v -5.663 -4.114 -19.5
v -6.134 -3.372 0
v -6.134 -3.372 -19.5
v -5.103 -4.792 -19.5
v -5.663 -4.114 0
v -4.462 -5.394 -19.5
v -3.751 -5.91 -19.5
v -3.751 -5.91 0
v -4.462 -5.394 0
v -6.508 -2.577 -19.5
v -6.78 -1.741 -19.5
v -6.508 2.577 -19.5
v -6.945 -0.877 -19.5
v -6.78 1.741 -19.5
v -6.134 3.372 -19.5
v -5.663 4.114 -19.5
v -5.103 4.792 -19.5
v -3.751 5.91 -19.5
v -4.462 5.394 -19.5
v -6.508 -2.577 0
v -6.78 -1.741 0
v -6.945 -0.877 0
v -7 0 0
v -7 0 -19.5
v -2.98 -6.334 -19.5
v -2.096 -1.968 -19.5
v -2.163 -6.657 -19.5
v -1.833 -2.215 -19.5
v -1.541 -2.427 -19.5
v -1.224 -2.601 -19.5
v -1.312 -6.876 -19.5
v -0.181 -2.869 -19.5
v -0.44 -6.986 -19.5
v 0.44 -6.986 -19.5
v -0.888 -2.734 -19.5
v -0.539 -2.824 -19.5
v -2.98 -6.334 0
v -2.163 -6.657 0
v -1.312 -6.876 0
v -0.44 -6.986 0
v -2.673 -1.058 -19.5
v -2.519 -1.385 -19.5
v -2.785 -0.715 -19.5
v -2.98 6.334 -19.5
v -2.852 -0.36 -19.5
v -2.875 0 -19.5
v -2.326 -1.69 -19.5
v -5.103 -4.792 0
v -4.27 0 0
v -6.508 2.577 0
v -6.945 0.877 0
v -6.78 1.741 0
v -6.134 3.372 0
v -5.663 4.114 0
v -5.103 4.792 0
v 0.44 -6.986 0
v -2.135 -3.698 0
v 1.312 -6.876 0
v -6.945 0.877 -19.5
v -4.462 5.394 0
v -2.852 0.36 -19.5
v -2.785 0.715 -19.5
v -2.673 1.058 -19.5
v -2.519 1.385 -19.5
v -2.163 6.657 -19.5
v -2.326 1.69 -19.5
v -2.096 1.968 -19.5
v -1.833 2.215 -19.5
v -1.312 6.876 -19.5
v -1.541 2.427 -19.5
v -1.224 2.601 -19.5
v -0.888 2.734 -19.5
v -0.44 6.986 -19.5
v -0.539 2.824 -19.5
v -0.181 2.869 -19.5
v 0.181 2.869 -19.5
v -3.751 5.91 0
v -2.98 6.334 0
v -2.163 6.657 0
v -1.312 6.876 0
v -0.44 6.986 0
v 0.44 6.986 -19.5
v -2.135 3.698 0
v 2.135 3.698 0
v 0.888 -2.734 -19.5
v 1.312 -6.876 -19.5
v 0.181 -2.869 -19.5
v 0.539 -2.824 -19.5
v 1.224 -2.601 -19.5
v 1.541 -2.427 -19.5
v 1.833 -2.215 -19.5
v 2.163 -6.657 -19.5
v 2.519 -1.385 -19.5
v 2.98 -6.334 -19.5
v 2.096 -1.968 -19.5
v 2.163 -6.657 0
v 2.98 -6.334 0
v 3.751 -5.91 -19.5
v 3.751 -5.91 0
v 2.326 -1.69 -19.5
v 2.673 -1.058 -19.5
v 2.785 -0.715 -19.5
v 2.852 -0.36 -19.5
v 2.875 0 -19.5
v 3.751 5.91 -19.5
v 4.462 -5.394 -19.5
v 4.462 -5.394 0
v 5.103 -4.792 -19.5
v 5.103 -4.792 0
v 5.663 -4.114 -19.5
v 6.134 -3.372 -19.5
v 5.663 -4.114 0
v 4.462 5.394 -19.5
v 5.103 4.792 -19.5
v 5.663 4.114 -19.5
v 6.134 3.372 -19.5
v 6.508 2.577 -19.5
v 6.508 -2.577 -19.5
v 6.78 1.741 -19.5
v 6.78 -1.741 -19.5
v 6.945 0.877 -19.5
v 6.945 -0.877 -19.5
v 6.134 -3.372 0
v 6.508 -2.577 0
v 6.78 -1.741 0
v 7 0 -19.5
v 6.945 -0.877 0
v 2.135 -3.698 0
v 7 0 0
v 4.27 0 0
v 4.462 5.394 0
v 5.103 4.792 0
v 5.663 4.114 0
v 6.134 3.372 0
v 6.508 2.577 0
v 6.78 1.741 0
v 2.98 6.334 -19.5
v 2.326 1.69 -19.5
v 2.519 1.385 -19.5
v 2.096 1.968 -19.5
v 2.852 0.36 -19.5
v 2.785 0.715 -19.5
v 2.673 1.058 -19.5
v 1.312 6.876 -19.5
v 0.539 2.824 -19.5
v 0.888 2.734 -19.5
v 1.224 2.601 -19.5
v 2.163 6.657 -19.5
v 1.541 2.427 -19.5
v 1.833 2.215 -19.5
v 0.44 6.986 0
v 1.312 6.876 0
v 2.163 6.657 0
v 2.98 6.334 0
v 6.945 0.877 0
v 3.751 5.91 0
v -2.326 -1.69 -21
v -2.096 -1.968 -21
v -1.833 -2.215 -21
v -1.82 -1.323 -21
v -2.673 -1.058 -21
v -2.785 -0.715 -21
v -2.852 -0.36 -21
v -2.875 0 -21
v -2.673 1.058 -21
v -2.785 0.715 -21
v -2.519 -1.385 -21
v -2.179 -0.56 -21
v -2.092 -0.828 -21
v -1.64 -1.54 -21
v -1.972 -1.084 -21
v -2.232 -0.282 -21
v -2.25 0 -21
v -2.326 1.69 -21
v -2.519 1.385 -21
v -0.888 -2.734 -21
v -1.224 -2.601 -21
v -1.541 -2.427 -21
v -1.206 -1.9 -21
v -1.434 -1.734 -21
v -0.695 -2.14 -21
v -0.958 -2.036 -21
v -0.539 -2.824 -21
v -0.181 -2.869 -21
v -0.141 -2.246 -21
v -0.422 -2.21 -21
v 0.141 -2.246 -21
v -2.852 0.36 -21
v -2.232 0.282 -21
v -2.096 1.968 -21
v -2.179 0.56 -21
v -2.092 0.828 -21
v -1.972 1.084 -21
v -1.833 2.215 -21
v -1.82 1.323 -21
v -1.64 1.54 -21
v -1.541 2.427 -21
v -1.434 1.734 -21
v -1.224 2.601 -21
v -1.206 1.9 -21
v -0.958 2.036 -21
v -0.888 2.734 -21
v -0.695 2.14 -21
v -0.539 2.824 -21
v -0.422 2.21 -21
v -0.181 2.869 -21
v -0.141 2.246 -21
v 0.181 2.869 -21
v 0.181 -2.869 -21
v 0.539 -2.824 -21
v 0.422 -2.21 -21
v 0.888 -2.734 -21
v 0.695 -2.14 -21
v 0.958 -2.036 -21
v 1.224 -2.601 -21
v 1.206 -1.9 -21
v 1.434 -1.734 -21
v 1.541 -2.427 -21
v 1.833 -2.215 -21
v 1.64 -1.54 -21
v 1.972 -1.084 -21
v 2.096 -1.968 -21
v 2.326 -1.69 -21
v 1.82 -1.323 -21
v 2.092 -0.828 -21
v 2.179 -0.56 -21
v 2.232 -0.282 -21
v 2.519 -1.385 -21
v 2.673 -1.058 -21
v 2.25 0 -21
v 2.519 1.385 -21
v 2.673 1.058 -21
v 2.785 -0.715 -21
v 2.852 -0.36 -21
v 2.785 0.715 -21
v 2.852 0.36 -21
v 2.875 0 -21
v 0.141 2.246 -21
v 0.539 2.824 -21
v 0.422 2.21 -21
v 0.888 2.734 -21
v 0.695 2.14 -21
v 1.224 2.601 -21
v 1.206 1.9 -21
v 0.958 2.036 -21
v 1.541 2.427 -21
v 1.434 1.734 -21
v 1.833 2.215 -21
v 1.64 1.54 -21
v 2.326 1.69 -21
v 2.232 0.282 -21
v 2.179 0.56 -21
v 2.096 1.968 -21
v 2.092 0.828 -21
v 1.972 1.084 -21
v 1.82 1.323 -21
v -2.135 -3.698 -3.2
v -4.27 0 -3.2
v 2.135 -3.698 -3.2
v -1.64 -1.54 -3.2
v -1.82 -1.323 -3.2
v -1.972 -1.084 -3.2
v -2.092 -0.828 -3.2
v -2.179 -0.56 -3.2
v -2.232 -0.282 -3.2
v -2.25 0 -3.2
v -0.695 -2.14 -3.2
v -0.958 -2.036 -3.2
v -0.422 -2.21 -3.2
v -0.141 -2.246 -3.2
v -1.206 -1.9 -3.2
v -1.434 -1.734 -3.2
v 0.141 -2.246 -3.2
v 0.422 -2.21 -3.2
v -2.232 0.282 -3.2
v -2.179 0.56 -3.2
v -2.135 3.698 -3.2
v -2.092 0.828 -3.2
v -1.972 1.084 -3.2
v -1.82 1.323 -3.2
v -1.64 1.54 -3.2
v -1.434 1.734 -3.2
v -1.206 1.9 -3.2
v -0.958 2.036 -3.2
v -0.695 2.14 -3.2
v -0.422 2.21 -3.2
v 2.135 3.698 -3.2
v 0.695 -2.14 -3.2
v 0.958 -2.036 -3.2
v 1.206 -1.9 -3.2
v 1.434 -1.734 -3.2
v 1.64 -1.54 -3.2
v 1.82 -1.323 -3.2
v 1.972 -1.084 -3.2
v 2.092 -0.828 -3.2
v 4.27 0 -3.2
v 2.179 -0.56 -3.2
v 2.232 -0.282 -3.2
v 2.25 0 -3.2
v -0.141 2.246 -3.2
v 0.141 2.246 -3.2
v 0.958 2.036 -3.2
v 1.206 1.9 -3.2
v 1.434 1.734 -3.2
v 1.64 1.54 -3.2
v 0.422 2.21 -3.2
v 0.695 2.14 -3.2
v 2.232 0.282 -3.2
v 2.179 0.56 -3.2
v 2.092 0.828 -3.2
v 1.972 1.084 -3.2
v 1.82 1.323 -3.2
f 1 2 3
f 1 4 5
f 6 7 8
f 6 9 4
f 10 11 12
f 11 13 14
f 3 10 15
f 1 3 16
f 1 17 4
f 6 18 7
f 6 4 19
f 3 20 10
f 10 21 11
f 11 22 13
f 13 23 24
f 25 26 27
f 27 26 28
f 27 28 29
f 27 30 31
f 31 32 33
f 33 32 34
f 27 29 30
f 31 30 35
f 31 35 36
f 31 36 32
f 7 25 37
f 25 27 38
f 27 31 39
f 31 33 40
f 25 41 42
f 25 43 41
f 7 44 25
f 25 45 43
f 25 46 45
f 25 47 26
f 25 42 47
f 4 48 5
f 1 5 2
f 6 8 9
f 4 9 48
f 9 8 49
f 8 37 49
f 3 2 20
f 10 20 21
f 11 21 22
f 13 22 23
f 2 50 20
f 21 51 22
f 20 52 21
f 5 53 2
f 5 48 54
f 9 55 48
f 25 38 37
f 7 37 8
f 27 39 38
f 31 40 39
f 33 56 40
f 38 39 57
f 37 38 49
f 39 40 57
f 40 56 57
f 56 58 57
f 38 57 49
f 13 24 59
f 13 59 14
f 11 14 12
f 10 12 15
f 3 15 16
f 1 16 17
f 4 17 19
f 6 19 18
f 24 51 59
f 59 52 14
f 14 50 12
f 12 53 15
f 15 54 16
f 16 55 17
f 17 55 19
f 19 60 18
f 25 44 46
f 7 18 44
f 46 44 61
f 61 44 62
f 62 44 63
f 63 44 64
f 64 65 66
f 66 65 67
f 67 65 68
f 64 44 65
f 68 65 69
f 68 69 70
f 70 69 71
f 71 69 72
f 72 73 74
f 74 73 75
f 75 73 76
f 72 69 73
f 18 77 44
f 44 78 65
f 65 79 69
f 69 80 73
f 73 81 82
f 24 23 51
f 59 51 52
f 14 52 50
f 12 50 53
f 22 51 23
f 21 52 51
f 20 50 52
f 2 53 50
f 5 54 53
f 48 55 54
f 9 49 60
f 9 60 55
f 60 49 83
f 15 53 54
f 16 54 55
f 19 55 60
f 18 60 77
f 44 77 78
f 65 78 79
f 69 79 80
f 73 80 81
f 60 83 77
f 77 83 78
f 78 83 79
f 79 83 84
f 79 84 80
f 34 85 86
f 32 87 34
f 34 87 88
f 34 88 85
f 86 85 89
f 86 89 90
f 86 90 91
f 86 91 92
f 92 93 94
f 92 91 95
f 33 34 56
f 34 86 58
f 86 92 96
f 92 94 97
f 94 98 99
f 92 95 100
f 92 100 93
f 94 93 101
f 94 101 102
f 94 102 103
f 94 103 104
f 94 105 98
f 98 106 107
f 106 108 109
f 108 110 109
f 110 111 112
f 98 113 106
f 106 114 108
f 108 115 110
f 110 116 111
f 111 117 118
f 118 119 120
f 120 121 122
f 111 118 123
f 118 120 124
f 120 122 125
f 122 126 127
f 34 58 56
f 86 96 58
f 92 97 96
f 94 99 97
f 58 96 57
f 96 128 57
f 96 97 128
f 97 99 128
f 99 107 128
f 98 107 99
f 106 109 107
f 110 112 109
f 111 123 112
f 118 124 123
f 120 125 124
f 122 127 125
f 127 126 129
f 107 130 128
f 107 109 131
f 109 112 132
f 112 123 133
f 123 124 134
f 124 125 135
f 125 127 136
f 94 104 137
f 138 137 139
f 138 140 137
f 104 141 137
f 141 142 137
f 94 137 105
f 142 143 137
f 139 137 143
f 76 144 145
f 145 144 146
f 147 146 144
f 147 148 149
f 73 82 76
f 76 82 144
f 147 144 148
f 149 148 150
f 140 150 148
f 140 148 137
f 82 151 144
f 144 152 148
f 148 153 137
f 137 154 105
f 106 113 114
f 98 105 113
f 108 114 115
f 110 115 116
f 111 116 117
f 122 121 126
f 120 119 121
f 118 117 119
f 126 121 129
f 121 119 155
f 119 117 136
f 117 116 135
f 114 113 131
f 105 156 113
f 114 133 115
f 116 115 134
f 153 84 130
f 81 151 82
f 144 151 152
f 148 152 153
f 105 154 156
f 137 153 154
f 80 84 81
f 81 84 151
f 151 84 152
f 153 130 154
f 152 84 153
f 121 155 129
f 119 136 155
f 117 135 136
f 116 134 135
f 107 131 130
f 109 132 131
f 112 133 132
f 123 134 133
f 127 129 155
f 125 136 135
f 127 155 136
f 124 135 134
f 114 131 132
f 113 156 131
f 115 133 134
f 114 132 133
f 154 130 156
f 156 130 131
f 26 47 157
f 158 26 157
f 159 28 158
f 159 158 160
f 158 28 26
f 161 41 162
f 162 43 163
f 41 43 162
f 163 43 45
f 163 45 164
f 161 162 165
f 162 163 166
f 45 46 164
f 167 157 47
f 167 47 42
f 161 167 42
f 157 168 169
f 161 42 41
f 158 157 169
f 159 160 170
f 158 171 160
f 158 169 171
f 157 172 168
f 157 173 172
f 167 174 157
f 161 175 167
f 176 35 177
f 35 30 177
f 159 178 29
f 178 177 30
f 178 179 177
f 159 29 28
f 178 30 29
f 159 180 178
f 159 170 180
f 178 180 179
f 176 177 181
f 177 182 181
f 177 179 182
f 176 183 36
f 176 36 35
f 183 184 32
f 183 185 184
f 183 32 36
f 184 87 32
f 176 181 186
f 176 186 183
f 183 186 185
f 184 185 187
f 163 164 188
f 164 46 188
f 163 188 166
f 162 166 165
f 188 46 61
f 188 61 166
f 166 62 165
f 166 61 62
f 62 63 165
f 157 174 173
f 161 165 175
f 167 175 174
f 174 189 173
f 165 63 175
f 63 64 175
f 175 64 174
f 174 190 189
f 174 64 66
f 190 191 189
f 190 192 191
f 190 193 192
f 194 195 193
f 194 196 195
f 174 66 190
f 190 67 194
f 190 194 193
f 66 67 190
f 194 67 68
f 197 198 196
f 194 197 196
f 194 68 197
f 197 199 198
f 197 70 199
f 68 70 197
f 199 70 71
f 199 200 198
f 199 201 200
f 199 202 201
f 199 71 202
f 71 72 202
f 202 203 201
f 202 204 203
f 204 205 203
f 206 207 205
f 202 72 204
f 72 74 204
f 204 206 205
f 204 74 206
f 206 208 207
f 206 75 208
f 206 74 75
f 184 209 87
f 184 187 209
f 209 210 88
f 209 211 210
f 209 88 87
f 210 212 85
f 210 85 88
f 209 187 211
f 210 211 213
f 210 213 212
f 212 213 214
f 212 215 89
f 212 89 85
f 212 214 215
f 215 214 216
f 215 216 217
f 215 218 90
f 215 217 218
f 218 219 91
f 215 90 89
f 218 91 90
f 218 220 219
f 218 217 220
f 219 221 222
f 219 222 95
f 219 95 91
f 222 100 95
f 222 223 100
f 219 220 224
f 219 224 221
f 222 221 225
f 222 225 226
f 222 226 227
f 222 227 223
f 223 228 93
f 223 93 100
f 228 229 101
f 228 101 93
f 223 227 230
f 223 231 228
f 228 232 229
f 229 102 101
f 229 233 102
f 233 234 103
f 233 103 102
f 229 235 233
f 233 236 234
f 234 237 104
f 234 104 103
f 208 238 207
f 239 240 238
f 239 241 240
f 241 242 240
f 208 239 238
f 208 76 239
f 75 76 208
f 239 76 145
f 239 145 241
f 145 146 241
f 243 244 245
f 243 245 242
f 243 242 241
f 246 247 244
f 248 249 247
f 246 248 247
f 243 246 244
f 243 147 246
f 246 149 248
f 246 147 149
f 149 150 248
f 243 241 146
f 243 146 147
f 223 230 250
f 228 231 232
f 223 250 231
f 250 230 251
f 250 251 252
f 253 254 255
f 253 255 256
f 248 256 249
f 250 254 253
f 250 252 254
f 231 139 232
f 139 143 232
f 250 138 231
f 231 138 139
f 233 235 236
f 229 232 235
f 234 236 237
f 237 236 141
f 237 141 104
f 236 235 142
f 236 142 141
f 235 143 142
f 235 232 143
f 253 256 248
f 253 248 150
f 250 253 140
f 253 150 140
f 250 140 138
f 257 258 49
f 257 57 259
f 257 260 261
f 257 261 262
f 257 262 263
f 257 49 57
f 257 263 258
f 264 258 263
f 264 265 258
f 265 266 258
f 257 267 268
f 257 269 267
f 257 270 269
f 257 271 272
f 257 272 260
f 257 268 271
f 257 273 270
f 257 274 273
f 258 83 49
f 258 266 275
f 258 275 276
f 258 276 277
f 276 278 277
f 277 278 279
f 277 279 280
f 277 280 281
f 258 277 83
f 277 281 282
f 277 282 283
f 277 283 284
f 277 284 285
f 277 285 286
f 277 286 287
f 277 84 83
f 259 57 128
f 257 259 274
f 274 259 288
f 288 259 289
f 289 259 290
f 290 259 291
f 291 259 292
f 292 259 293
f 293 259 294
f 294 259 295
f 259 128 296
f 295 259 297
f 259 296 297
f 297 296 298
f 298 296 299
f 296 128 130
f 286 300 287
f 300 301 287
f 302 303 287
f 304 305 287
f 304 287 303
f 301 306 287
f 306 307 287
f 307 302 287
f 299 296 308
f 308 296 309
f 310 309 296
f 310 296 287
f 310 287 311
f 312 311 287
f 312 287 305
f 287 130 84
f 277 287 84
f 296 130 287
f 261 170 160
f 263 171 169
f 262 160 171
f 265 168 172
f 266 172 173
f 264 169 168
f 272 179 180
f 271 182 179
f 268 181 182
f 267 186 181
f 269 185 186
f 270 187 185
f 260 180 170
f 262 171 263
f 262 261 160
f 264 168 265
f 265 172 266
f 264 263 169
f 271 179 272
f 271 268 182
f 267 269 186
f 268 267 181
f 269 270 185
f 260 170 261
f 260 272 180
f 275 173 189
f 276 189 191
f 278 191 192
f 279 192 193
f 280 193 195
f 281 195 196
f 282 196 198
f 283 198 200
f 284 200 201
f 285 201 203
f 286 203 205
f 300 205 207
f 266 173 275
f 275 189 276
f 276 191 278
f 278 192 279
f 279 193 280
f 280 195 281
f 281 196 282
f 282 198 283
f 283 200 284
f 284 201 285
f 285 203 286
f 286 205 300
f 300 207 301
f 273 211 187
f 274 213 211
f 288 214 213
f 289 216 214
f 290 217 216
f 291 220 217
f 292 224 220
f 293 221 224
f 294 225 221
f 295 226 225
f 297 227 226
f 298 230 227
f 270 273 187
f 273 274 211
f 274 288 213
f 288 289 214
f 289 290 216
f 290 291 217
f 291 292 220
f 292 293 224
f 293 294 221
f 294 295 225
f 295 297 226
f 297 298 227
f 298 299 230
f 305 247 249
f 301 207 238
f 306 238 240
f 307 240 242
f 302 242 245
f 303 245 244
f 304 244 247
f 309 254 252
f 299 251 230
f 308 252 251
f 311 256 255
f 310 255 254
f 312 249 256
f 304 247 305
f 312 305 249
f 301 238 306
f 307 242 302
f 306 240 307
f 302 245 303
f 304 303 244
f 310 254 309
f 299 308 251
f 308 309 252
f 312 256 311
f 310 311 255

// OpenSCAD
$fn = 50;


difference() {
	union() {
		translate(v = [0, 0, -19.5000000000]) {
			cylinder(h = 19.5000000000, r = 7.0000000000);
		}
		#translate(v = [0, 0, -21.0000000000]) {
			cylinder(h = 21, r = 2.8750000000);
		}
	}
	union() {
		translate(v = [0, 0, 0]) {
			rotate(a = [0, 0, 0]) {
				difference() {
					union() {
						translate(v = [0, 0, -3.2000000000]) {
							linear_extrude(height = 3.2000000000) {
								polygon(points = [[4.2698000000, 0.0000000000], [2.1349000000, 3.6977552691], [-2.1349000000, 3.6977552691], [-4.2698000000, 0.0000000000], [-2.1349000000, -3.6977552691], [2.1349000000, -3.6977552691]]);
							}
						}
					}
					union();
				}
			}
		}
		#translate(v = [0, 0, -100.0000000000]) {
			cylinder(h = 200, r = 2.2500000000);
		}
	}
}
